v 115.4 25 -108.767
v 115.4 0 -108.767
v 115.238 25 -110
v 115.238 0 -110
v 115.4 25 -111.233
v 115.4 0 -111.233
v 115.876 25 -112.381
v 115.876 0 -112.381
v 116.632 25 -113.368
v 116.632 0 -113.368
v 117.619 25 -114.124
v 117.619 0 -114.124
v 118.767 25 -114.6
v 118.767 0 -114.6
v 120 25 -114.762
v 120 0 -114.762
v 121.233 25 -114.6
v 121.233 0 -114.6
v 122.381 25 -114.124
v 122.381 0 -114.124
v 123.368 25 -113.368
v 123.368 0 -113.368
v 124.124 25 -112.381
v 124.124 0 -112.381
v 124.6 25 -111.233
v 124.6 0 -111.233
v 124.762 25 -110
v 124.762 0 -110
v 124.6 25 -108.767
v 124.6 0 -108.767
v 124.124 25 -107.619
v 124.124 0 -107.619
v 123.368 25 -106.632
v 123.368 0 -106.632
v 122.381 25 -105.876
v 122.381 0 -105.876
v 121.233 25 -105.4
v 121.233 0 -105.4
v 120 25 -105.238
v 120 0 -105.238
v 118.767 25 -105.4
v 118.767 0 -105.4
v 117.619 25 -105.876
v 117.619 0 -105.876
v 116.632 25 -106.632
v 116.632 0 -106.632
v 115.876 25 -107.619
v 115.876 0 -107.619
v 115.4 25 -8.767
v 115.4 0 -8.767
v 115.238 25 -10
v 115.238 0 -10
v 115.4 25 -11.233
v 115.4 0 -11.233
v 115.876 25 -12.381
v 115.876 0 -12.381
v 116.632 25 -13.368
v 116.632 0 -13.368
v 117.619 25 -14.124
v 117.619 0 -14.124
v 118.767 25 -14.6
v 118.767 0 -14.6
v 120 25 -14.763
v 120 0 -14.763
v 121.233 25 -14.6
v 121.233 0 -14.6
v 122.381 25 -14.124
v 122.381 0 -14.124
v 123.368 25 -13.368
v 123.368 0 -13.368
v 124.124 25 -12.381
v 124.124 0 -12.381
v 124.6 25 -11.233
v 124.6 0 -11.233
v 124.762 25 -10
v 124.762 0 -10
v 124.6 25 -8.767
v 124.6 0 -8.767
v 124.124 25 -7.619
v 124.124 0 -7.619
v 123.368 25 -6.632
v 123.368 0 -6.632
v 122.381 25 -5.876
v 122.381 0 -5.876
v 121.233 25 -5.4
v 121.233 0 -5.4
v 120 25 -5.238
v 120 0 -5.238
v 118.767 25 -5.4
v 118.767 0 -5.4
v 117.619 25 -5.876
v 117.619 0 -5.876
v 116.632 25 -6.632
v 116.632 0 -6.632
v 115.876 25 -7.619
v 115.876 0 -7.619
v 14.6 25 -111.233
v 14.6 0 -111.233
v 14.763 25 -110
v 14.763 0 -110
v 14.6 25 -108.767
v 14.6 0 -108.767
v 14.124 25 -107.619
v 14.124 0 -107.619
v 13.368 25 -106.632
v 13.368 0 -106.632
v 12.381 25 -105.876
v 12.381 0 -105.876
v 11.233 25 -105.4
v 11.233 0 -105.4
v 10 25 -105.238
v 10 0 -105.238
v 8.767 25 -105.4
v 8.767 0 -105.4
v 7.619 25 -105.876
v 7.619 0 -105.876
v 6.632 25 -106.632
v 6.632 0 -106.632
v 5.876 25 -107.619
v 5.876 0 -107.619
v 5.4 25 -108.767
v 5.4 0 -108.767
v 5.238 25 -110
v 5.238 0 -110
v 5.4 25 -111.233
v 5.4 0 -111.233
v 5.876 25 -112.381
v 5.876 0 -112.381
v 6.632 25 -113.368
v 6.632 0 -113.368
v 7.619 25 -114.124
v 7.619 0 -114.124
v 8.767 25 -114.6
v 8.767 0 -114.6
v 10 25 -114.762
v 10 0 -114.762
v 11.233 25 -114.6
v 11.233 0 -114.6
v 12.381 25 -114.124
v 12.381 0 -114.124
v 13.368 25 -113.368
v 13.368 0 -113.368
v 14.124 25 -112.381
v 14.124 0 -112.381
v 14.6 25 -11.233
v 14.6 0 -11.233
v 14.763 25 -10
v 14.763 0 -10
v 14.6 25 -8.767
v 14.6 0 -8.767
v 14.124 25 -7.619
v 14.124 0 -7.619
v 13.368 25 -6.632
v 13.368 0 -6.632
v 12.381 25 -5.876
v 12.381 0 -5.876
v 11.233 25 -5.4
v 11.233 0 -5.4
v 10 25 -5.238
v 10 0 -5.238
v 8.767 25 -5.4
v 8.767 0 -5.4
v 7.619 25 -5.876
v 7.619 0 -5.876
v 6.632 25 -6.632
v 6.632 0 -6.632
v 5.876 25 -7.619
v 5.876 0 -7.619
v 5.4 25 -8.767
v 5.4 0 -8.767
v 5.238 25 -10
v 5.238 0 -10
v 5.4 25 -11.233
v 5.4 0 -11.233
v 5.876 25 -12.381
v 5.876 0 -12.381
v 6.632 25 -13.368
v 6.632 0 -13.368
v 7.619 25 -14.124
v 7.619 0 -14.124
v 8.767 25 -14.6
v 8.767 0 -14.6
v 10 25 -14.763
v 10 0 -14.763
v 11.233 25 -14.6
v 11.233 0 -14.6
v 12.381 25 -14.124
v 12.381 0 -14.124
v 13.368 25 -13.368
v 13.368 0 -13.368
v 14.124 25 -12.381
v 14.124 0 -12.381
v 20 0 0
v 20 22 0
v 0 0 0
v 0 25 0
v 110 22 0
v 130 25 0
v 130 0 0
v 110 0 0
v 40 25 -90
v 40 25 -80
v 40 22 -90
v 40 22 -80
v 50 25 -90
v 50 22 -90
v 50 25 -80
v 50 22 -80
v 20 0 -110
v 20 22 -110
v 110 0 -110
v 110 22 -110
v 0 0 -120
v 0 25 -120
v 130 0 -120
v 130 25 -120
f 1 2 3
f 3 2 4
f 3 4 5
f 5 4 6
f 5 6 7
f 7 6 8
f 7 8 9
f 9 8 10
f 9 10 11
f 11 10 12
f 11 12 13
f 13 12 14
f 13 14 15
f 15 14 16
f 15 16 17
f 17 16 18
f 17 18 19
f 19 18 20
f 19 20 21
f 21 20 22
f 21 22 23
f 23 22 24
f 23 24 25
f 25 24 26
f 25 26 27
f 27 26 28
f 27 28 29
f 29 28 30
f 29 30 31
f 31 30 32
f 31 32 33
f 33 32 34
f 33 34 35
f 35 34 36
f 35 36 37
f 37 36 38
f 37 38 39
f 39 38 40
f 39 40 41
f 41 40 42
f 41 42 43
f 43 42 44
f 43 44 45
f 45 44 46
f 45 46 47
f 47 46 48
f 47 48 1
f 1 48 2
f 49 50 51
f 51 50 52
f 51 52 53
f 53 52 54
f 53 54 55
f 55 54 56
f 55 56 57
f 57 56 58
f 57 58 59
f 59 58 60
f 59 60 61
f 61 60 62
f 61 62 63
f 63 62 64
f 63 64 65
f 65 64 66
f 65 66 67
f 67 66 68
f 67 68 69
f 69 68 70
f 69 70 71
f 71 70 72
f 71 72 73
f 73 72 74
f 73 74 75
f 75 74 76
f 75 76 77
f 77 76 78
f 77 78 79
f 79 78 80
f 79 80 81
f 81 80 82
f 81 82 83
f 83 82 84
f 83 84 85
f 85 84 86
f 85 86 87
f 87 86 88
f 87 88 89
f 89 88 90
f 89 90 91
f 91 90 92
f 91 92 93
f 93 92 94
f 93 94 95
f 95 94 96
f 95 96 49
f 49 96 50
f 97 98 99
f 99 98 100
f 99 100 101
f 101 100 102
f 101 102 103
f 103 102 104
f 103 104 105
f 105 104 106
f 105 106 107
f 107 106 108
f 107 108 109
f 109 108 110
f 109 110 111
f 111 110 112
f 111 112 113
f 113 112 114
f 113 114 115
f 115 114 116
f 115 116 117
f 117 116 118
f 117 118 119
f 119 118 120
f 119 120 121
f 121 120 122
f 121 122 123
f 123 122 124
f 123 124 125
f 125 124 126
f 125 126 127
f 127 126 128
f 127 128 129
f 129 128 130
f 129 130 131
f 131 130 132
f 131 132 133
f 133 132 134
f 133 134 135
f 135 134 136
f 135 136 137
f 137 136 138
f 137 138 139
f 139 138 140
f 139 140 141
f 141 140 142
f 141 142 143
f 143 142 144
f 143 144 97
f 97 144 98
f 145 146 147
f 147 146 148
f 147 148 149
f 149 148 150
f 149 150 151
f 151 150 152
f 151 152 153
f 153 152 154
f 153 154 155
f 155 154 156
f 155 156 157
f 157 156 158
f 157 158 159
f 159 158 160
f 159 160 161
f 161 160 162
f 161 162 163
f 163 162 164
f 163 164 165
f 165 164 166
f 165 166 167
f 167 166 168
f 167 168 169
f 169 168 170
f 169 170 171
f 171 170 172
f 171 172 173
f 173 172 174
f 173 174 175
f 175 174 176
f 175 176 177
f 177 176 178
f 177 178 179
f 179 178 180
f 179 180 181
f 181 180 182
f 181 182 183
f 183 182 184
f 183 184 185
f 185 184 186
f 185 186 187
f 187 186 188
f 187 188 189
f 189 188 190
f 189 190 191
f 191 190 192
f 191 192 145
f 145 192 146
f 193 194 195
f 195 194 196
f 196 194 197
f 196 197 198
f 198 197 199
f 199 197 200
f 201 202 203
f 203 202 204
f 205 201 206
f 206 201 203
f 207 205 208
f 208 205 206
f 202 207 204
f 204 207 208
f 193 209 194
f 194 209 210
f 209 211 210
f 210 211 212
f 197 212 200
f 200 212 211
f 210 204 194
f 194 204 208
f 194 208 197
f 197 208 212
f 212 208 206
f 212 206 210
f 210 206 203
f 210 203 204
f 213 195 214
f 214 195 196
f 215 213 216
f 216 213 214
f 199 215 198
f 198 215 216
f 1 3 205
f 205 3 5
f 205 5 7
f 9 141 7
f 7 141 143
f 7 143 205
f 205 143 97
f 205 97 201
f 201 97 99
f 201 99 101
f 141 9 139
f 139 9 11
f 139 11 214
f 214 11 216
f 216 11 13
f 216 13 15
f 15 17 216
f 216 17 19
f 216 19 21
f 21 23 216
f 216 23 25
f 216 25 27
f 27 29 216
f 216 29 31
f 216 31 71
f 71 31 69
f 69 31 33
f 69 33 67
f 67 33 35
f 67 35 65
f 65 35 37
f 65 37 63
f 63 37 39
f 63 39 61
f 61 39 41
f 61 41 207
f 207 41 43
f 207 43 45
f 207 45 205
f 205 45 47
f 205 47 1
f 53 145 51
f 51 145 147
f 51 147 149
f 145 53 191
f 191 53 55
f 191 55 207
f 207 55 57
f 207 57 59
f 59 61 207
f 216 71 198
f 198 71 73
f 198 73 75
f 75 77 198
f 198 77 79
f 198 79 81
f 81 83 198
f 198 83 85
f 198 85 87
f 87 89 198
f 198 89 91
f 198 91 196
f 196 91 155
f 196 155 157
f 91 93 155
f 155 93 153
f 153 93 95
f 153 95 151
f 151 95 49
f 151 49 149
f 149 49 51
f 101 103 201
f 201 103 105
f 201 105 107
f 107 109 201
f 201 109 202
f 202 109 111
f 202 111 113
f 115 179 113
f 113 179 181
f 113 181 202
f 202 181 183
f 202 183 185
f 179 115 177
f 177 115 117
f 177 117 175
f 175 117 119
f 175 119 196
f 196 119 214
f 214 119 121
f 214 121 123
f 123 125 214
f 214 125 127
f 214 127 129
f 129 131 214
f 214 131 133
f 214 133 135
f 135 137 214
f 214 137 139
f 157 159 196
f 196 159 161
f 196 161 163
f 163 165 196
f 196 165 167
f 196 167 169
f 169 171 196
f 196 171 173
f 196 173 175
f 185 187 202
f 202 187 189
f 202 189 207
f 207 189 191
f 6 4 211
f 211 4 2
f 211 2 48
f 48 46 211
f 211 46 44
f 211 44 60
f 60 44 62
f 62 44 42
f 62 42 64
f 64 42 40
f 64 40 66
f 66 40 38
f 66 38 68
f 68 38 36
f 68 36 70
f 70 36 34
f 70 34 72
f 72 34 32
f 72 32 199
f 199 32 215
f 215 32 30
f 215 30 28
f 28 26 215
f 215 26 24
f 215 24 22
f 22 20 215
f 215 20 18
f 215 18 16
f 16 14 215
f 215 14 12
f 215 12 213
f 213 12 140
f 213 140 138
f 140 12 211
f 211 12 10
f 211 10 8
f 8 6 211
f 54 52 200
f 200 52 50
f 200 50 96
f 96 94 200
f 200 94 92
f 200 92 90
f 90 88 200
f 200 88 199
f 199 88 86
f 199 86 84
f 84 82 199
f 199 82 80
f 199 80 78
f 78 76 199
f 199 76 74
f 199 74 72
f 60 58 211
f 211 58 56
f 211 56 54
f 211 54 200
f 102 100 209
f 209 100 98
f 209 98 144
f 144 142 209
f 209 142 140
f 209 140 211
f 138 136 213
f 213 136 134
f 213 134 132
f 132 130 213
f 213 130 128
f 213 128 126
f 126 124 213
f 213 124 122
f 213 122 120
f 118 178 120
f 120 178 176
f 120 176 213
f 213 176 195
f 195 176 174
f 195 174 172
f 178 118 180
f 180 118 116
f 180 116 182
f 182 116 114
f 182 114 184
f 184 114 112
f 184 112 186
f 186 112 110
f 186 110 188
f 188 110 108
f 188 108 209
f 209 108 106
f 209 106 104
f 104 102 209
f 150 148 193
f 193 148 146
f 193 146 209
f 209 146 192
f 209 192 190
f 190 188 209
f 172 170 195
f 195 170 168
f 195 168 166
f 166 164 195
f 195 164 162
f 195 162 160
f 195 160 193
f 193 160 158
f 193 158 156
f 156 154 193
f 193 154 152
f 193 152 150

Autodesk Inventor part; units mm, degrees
ref_plane "YZ Plane" through (0, 0, 0) normal (1, 0, 0) x (0, 1, 0)
ref_plane "XZ Plane" through (0, 0, 0) normal (0, 1, 0) x (-1, 0, 0)
ref_plane "XY Plane" through (0, 0, 0) normal (0, 0, 1) x (1, 0, 0)
sketch "Sketch1" plane through (0, 0, 0) normal (0, 1, 0) x (-1, 0, 0)
  line L0 (0, 0) -> (-130, 0)
  line L1 (-130, 0) -> (-130, -120)
  line L2 (-130, -120) -> (0, -120)
  line L3 (0, -120) -> (0, 0)
  dimension "d0" = 130
  dimension "d1" = 120
extrude "Extrusion1" add sketch "Sketch1" along normal blind 25
sketch "Sketch2" plane through (0, 0, 0) normal (0, -1, 0) x (1, 0, 0)
  line L0 (110, -6.6572) -> (20, -6.6572)
  line L1 (20, -6.6572) -> (20, -110)
  line L2 (20, -110) -> (110, -110)
  line L3 (110, -110) -> (110, -6.6572)
  line L4 (0, -120) -> (0, 0) projected
  line L5 (0, 0) -> (130, 0) projected
  line L6 (130, -120) -> (0, -120) projected
  line L7 (130, 0) -> (130, -120) projected
  dimension "d5" = 6.6572
  dimension "d46" = 20
  dimension "d47" = 20
  dimension "d48" = 10
extrude "Extrusion2" cut sketch "Sketch2" against normal blind 22 contours L3 L2 L1 L0
sketch "Sketch4" plane through (0, 22, 0) normal (0, -1, 0) x (1, 0, 0)
  line L0 (130, -120) -> (0, -120) projected
  line L1 (40, -90) -> (50, -90)
  line L2 (50, -90) -> (50, -80)
  line L3 (50, -80) -> (40, -80)
  line L4 (40, -80) -> (40, -90)
  line L5 (0, -120) -> (0, 0) projected
  line L6 (20, -110) -> (20, -6.6572) projected
  line L7 (110, -110) -> (20, -110) projected
  dimension "d42" = 10
  dimension "d43" = 10
  dimension "d49" = 20
  dimension "d50" = 20
extrude "Extrusion3" cut sketch "Sketch4" against normal blind 22
sketch "Sketch5" plane through (0, 0, 0) normal (0, 0, 1) x (1, 0, 0)
  line L0 (20, 22) -> (110, 22)
  line L1 (110, 22) -> (110, 0)
  line L2 (110, 0) -> (20, 0)
  line L3 (20, 0) -> (20, 22)
  line L4 (0, 0) -> (0, 25) projected
  line L5 (130, 0) -> (130, 25) projected
  line L6 (0, 0) -> (130, 0) projected
  line L7 (130, 25) -> (0, 25) projected
  dimension "d13" = 20
  dimension "d14" = 20
  dimension "d15" = 0
  dimension "d16" = 3
extrude "Extrusion4" cut sketch "Sketch5" against normal blind 22 contours L0 L1 L2 L3
sketch "Sketch10" plane through (0, 0, 0) normal (0, -1, 0) x (1, 0, 0)
  circle A0 centre (10, -10) radius 4.7625
  line L0 (0, 0) -> (20, 0) projected
  line L1 (0, -120) -> (0, 0) projected
  dimension "d51" = 10
  dimension "d52" = 10
  dimension "d53" = 9.525
ref_plane "Work Plane3" through (65, 0, 0) normal (1, 0, 0) x (0, 0, -1)
ref_plane "Work Plane4" through (0, 25, -60) normal (0, 0, 1) x (1, 0, 0)
extrude "Extrusion7" cut sketch "Sketch10" against normal blind 25
mirror "Mirror4" about plane through (0, 25, -60) normal (0, 0, 1) of "Extrusion7"
mirror "Mirror5" about plane through (65, 0, 0) normal (1, 0, 0) of "Extrusion7", "Mirror4"
properties part number "Case_Top_Partv1"
